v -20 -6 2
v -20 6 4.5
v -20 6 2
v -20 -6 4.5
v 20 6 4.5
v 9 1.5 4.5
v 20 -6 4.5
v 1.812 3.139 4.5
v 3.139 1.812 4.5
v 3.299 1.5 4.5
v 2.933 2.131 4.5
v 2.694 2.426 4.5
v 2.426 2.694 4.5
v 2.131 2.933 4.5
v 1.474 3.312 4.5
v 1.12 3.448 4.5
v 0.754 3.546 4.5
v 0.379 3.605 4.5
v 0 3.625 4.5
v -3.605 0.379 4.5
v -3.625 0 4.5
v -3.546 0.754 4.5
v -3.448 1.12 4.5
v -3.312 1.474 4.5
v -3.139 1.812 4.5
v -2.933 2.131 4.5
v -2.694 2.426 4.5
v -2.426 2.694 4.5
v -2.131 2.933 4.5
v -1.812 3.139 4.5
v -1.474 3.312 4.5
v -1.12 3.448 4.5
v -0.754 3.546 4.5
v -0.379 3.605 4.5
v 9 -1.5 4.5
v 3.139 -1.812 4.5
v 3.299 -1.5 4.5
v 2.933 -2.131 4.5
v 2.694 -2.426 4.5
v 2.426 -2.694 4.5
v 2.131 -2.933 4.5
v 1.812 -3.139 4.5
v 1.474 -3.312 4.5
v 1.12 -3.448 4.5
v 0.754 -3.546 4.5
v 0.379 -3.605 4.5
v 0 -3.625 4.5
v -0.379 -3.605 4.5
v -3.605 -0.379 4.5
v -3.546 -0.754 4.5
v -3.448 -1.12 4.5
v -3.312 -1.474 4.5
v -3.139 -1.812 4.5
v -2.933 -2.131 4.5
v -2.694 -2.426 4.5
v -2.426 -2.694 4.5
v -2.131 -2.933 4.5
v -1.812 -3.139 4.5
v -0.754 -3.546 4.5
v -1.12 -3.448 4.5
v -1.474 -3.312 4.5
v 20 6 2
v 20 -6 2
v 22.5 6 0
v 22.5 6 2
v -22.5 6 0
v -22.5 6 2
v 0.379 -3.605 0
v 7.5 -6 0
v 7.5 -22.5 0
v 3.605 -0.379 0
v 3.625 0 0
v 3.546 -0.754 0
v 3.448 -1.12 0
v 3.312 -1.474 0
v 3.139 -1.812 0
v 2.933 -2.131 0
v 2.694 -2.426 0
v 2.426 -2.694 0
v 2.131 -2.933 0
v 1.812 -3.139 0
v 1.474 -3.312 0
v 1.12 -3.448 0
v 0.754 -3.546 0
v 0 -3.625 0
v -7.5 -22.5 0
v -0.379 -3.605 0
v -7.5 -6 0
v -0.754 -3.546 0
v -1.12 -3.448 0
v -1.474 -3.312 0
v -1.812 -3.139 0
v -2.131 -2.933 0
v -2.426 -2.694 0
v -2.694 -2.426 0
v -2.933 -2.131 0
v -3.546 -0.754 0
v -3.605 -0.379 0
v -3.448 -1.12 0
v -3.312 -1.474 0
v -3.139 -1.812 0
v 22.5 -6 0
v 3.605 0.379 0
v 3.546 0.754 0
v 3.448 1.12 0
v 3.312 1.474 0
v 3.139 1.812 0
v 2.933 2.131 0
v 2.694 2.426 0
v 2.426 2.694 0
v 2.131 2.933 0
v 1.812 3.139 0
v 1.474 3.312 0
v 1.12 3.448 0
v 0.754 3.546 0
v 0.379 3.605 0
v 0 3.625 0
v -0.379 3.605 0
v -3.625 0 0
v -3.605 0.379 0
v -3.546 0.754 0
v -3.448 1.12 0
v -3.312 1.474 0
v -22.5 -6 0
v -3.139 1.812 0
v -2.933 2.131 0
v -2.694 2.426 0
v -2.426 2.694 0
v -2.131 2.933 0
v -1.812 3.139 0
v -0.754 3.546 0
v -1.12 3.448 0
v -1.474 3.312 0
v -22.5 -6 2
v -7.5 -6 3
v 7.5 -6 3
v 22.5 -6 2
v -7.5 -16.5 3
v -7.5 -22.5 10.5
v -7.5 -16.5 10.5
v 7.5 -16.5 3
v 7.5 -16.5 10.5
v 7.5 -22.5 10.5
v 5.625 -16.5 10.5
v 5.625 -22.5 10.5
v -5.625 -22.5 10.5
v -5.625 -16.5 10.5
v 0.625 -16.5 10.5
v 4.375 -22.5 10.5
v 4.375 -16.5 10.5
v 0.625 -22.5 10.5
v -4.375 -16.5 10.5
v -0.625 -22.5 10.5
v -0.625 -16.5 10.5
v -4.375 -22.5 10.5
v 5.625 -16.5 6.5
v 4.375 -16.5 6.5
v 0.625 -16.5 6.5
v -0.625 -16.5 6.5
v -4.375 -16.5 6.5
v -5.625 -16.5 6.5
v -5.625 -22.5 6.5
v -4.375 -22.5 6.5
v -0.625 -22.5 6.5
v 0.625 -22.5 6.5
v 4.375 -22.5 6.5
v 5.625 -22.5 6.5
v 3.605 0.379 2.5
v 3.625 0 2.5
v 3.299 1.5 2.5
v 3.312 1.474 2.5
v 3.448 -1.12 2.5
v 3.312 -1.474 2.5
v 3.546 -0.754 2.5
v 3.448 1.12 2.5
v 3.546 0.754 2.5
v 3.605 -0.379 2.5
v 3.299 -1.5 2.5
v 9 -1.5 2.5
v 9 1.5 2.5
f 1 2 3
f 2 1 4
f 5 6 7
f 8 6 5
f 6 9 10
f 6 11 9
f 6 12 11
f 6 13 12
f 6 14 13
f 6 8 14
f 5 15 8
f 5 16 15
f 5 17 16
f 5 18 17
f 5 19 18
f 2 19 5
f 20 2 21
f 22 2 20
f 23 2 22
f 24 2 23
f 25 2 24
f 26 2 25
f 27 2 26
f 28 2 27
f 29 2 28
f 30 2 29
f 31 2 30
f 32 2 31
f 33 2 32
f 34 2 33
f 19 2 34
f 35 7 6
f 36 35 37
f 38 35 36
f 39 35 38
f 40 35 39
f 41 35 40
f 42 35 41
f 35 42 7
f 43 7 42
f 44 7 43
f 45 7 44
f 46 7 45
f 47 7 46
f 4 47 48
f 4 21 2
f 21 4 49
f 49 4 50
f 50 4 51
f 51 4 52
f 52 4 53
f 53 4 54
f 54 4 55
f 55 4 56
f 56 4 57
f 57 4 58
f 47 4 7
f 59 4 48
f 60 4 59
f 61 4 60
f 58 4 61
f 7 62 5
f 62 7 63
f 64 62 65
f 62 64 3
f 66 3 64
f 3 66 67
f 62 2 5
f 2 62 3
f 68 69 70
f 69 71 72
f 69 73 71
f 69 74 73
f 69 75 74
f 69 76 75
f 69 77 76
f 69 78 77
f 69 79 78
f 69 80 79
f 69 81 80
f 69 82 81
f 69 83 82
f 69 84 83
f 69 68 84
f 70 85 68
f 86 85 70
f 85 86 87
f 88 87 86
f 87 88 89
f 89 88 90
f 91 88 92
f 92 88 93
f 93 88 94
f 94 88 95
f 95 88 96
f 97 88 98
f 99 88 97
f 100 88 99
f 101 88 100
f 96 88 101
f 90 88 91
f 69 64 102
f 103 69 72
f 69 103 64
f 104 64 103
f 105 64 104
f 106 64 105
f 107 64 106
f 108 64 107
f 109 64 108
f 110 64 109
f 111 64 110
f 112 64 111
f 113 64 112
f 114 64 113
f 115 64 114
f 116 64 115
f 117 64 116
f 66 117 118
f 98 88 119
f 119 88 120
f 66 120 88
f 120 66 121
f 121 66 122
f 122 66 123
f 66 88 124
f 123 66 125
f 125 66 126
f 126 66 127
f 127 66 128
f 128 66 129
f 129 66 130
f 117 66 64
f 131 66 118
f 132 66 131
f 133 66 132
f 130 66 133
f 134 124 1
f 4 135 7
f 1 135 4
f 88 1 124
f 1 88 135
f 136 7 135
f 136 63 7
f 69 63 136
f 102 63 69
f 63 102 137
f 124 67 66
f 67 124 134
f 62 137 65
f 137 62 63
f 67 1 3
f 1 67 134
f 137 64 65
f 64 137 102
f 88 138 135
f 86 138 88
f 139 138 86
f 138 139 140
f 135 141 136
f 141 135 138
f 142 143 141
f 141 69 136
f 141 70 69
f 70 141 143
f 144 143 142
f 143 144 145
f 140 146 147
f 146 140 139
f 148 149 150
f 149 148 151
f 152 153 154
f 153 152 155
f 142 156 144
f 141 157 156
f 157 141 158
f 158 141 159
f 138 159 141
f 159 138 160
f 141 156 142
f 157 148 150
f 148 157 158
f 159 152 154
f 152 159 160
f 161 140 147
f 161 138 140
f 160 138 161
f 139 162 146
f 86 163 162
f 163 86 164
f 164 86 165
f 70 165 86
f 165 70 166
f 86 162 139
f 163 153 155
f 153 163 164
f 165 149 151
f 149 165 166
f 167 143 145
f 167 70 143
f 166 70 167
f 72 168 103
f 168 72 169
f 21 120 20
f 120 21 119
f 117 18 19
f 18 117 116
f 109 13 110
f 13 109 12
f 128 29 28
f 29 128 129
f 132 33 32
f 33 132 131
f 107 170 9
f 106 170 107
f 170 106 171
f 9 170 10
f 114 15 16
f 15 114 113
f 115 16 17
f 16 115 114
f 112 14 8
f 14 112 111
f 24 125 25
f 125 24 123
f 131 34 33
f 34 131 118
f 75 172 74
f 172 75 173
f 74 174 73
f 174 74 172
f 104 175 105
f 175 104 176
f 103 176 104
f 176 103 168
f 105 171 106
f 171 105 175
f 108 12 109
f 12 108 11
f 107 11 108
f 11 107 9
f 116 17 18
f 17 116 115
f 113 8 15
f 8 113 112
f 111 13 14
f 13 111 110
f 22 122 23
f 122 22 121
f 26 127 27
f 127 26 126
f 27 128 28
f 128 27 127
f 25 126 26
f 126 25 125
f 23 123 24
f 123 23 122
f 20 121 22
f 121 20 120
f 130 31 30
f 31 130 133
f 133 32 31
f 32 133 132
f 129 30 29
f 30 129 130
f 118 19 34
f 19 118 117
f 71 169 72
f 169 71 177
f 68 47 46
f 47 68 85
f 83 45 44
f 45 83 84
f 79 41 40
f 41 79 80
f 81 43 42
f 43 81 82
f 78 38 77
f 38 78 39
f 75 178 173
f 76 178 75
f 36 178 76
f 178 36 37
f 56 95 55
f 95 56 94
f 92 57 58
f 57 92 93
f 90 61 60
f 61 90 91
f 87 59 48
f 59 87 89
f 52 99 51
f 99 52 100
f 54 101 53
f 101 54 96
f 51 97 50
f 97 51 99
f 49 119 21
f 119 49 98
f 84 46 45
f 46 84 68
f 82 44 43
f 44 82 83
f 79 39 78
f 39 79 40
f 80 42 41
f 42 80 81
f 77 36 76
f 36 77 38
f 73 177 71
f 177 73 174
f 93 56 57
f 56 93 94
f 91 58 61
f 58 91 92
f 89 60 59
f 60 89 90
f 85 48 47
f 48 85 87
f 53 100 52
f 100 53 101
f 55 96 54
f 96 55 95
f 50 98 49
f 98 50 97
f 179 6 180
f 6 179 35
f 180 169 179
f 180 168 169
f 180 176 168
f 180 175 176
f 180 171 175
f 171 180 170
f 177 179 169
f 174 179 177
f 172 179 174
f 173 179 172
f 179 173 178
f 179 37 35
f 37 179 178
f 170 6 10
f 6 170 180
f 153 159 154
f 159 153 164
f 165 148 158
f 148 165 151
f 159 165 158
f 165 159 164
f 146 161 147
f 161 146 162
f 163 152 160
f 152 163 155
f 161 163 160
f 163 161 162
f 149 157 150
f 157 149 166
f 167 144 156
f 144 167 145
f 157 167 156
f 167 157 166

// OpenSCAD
include <BOSL/constants.scad>
use <BOSL/shapes.scad>
use <BOSL/transforms.scad>
use <BOSL/masks.scad>

//2024-10-08 : Improved to support wires while soldering

toolWidth=40;
toolDepth=12;
toolHeight=4.5;
viseHeight=2.0;

wireShift=19.5;
potLeg=8.5;

wiggle=0.1;
$fn=60;
tool();

module tool() {  
  difference(){
    union() {
      color("orange") cuboid([toolWidth, toolDepth, toolHeight], align=V_UP); //base jig
      color("yellow") cuboid([toolWidth+5, toolDepth, viseHeight], align=V_UP); //to fit into vise 
      forward(12/2) color("brown") cuboid([15, 12+toolDepth, 3], align=V_UP); // extension for soldering
      //forward(15) color("tan") cuboid([15, 3, potLeg], align=V_UP); // pot leg riser
      forward(wireShift) color("green") cuboid([15, 6, potLeg+2], align=V_UP); // wire holder
    }
    color("green") cyl(d=7.25, h=toolHeight+wiggle, align=V_UP); // MOD POT
    right(6) up(toolHeight-2) color("blue") cuboid([6, 3, 2+wiggle], align=V_UP); // pot cutout
    //wire slots
    left(0)  up(potLeg+2-4) forward(wireShift) cuboid([1.25,6,4], align=V_UP);
    left(5)  up(potLeg+2-4) forward(wireShift) cuboid([1.25,6,4], align=V_UP);
    right(5) up(potLeg+2-4) forward(wireShift) cuboid([1.25,6,4], align=V_UP);
    
  }//difference
}
